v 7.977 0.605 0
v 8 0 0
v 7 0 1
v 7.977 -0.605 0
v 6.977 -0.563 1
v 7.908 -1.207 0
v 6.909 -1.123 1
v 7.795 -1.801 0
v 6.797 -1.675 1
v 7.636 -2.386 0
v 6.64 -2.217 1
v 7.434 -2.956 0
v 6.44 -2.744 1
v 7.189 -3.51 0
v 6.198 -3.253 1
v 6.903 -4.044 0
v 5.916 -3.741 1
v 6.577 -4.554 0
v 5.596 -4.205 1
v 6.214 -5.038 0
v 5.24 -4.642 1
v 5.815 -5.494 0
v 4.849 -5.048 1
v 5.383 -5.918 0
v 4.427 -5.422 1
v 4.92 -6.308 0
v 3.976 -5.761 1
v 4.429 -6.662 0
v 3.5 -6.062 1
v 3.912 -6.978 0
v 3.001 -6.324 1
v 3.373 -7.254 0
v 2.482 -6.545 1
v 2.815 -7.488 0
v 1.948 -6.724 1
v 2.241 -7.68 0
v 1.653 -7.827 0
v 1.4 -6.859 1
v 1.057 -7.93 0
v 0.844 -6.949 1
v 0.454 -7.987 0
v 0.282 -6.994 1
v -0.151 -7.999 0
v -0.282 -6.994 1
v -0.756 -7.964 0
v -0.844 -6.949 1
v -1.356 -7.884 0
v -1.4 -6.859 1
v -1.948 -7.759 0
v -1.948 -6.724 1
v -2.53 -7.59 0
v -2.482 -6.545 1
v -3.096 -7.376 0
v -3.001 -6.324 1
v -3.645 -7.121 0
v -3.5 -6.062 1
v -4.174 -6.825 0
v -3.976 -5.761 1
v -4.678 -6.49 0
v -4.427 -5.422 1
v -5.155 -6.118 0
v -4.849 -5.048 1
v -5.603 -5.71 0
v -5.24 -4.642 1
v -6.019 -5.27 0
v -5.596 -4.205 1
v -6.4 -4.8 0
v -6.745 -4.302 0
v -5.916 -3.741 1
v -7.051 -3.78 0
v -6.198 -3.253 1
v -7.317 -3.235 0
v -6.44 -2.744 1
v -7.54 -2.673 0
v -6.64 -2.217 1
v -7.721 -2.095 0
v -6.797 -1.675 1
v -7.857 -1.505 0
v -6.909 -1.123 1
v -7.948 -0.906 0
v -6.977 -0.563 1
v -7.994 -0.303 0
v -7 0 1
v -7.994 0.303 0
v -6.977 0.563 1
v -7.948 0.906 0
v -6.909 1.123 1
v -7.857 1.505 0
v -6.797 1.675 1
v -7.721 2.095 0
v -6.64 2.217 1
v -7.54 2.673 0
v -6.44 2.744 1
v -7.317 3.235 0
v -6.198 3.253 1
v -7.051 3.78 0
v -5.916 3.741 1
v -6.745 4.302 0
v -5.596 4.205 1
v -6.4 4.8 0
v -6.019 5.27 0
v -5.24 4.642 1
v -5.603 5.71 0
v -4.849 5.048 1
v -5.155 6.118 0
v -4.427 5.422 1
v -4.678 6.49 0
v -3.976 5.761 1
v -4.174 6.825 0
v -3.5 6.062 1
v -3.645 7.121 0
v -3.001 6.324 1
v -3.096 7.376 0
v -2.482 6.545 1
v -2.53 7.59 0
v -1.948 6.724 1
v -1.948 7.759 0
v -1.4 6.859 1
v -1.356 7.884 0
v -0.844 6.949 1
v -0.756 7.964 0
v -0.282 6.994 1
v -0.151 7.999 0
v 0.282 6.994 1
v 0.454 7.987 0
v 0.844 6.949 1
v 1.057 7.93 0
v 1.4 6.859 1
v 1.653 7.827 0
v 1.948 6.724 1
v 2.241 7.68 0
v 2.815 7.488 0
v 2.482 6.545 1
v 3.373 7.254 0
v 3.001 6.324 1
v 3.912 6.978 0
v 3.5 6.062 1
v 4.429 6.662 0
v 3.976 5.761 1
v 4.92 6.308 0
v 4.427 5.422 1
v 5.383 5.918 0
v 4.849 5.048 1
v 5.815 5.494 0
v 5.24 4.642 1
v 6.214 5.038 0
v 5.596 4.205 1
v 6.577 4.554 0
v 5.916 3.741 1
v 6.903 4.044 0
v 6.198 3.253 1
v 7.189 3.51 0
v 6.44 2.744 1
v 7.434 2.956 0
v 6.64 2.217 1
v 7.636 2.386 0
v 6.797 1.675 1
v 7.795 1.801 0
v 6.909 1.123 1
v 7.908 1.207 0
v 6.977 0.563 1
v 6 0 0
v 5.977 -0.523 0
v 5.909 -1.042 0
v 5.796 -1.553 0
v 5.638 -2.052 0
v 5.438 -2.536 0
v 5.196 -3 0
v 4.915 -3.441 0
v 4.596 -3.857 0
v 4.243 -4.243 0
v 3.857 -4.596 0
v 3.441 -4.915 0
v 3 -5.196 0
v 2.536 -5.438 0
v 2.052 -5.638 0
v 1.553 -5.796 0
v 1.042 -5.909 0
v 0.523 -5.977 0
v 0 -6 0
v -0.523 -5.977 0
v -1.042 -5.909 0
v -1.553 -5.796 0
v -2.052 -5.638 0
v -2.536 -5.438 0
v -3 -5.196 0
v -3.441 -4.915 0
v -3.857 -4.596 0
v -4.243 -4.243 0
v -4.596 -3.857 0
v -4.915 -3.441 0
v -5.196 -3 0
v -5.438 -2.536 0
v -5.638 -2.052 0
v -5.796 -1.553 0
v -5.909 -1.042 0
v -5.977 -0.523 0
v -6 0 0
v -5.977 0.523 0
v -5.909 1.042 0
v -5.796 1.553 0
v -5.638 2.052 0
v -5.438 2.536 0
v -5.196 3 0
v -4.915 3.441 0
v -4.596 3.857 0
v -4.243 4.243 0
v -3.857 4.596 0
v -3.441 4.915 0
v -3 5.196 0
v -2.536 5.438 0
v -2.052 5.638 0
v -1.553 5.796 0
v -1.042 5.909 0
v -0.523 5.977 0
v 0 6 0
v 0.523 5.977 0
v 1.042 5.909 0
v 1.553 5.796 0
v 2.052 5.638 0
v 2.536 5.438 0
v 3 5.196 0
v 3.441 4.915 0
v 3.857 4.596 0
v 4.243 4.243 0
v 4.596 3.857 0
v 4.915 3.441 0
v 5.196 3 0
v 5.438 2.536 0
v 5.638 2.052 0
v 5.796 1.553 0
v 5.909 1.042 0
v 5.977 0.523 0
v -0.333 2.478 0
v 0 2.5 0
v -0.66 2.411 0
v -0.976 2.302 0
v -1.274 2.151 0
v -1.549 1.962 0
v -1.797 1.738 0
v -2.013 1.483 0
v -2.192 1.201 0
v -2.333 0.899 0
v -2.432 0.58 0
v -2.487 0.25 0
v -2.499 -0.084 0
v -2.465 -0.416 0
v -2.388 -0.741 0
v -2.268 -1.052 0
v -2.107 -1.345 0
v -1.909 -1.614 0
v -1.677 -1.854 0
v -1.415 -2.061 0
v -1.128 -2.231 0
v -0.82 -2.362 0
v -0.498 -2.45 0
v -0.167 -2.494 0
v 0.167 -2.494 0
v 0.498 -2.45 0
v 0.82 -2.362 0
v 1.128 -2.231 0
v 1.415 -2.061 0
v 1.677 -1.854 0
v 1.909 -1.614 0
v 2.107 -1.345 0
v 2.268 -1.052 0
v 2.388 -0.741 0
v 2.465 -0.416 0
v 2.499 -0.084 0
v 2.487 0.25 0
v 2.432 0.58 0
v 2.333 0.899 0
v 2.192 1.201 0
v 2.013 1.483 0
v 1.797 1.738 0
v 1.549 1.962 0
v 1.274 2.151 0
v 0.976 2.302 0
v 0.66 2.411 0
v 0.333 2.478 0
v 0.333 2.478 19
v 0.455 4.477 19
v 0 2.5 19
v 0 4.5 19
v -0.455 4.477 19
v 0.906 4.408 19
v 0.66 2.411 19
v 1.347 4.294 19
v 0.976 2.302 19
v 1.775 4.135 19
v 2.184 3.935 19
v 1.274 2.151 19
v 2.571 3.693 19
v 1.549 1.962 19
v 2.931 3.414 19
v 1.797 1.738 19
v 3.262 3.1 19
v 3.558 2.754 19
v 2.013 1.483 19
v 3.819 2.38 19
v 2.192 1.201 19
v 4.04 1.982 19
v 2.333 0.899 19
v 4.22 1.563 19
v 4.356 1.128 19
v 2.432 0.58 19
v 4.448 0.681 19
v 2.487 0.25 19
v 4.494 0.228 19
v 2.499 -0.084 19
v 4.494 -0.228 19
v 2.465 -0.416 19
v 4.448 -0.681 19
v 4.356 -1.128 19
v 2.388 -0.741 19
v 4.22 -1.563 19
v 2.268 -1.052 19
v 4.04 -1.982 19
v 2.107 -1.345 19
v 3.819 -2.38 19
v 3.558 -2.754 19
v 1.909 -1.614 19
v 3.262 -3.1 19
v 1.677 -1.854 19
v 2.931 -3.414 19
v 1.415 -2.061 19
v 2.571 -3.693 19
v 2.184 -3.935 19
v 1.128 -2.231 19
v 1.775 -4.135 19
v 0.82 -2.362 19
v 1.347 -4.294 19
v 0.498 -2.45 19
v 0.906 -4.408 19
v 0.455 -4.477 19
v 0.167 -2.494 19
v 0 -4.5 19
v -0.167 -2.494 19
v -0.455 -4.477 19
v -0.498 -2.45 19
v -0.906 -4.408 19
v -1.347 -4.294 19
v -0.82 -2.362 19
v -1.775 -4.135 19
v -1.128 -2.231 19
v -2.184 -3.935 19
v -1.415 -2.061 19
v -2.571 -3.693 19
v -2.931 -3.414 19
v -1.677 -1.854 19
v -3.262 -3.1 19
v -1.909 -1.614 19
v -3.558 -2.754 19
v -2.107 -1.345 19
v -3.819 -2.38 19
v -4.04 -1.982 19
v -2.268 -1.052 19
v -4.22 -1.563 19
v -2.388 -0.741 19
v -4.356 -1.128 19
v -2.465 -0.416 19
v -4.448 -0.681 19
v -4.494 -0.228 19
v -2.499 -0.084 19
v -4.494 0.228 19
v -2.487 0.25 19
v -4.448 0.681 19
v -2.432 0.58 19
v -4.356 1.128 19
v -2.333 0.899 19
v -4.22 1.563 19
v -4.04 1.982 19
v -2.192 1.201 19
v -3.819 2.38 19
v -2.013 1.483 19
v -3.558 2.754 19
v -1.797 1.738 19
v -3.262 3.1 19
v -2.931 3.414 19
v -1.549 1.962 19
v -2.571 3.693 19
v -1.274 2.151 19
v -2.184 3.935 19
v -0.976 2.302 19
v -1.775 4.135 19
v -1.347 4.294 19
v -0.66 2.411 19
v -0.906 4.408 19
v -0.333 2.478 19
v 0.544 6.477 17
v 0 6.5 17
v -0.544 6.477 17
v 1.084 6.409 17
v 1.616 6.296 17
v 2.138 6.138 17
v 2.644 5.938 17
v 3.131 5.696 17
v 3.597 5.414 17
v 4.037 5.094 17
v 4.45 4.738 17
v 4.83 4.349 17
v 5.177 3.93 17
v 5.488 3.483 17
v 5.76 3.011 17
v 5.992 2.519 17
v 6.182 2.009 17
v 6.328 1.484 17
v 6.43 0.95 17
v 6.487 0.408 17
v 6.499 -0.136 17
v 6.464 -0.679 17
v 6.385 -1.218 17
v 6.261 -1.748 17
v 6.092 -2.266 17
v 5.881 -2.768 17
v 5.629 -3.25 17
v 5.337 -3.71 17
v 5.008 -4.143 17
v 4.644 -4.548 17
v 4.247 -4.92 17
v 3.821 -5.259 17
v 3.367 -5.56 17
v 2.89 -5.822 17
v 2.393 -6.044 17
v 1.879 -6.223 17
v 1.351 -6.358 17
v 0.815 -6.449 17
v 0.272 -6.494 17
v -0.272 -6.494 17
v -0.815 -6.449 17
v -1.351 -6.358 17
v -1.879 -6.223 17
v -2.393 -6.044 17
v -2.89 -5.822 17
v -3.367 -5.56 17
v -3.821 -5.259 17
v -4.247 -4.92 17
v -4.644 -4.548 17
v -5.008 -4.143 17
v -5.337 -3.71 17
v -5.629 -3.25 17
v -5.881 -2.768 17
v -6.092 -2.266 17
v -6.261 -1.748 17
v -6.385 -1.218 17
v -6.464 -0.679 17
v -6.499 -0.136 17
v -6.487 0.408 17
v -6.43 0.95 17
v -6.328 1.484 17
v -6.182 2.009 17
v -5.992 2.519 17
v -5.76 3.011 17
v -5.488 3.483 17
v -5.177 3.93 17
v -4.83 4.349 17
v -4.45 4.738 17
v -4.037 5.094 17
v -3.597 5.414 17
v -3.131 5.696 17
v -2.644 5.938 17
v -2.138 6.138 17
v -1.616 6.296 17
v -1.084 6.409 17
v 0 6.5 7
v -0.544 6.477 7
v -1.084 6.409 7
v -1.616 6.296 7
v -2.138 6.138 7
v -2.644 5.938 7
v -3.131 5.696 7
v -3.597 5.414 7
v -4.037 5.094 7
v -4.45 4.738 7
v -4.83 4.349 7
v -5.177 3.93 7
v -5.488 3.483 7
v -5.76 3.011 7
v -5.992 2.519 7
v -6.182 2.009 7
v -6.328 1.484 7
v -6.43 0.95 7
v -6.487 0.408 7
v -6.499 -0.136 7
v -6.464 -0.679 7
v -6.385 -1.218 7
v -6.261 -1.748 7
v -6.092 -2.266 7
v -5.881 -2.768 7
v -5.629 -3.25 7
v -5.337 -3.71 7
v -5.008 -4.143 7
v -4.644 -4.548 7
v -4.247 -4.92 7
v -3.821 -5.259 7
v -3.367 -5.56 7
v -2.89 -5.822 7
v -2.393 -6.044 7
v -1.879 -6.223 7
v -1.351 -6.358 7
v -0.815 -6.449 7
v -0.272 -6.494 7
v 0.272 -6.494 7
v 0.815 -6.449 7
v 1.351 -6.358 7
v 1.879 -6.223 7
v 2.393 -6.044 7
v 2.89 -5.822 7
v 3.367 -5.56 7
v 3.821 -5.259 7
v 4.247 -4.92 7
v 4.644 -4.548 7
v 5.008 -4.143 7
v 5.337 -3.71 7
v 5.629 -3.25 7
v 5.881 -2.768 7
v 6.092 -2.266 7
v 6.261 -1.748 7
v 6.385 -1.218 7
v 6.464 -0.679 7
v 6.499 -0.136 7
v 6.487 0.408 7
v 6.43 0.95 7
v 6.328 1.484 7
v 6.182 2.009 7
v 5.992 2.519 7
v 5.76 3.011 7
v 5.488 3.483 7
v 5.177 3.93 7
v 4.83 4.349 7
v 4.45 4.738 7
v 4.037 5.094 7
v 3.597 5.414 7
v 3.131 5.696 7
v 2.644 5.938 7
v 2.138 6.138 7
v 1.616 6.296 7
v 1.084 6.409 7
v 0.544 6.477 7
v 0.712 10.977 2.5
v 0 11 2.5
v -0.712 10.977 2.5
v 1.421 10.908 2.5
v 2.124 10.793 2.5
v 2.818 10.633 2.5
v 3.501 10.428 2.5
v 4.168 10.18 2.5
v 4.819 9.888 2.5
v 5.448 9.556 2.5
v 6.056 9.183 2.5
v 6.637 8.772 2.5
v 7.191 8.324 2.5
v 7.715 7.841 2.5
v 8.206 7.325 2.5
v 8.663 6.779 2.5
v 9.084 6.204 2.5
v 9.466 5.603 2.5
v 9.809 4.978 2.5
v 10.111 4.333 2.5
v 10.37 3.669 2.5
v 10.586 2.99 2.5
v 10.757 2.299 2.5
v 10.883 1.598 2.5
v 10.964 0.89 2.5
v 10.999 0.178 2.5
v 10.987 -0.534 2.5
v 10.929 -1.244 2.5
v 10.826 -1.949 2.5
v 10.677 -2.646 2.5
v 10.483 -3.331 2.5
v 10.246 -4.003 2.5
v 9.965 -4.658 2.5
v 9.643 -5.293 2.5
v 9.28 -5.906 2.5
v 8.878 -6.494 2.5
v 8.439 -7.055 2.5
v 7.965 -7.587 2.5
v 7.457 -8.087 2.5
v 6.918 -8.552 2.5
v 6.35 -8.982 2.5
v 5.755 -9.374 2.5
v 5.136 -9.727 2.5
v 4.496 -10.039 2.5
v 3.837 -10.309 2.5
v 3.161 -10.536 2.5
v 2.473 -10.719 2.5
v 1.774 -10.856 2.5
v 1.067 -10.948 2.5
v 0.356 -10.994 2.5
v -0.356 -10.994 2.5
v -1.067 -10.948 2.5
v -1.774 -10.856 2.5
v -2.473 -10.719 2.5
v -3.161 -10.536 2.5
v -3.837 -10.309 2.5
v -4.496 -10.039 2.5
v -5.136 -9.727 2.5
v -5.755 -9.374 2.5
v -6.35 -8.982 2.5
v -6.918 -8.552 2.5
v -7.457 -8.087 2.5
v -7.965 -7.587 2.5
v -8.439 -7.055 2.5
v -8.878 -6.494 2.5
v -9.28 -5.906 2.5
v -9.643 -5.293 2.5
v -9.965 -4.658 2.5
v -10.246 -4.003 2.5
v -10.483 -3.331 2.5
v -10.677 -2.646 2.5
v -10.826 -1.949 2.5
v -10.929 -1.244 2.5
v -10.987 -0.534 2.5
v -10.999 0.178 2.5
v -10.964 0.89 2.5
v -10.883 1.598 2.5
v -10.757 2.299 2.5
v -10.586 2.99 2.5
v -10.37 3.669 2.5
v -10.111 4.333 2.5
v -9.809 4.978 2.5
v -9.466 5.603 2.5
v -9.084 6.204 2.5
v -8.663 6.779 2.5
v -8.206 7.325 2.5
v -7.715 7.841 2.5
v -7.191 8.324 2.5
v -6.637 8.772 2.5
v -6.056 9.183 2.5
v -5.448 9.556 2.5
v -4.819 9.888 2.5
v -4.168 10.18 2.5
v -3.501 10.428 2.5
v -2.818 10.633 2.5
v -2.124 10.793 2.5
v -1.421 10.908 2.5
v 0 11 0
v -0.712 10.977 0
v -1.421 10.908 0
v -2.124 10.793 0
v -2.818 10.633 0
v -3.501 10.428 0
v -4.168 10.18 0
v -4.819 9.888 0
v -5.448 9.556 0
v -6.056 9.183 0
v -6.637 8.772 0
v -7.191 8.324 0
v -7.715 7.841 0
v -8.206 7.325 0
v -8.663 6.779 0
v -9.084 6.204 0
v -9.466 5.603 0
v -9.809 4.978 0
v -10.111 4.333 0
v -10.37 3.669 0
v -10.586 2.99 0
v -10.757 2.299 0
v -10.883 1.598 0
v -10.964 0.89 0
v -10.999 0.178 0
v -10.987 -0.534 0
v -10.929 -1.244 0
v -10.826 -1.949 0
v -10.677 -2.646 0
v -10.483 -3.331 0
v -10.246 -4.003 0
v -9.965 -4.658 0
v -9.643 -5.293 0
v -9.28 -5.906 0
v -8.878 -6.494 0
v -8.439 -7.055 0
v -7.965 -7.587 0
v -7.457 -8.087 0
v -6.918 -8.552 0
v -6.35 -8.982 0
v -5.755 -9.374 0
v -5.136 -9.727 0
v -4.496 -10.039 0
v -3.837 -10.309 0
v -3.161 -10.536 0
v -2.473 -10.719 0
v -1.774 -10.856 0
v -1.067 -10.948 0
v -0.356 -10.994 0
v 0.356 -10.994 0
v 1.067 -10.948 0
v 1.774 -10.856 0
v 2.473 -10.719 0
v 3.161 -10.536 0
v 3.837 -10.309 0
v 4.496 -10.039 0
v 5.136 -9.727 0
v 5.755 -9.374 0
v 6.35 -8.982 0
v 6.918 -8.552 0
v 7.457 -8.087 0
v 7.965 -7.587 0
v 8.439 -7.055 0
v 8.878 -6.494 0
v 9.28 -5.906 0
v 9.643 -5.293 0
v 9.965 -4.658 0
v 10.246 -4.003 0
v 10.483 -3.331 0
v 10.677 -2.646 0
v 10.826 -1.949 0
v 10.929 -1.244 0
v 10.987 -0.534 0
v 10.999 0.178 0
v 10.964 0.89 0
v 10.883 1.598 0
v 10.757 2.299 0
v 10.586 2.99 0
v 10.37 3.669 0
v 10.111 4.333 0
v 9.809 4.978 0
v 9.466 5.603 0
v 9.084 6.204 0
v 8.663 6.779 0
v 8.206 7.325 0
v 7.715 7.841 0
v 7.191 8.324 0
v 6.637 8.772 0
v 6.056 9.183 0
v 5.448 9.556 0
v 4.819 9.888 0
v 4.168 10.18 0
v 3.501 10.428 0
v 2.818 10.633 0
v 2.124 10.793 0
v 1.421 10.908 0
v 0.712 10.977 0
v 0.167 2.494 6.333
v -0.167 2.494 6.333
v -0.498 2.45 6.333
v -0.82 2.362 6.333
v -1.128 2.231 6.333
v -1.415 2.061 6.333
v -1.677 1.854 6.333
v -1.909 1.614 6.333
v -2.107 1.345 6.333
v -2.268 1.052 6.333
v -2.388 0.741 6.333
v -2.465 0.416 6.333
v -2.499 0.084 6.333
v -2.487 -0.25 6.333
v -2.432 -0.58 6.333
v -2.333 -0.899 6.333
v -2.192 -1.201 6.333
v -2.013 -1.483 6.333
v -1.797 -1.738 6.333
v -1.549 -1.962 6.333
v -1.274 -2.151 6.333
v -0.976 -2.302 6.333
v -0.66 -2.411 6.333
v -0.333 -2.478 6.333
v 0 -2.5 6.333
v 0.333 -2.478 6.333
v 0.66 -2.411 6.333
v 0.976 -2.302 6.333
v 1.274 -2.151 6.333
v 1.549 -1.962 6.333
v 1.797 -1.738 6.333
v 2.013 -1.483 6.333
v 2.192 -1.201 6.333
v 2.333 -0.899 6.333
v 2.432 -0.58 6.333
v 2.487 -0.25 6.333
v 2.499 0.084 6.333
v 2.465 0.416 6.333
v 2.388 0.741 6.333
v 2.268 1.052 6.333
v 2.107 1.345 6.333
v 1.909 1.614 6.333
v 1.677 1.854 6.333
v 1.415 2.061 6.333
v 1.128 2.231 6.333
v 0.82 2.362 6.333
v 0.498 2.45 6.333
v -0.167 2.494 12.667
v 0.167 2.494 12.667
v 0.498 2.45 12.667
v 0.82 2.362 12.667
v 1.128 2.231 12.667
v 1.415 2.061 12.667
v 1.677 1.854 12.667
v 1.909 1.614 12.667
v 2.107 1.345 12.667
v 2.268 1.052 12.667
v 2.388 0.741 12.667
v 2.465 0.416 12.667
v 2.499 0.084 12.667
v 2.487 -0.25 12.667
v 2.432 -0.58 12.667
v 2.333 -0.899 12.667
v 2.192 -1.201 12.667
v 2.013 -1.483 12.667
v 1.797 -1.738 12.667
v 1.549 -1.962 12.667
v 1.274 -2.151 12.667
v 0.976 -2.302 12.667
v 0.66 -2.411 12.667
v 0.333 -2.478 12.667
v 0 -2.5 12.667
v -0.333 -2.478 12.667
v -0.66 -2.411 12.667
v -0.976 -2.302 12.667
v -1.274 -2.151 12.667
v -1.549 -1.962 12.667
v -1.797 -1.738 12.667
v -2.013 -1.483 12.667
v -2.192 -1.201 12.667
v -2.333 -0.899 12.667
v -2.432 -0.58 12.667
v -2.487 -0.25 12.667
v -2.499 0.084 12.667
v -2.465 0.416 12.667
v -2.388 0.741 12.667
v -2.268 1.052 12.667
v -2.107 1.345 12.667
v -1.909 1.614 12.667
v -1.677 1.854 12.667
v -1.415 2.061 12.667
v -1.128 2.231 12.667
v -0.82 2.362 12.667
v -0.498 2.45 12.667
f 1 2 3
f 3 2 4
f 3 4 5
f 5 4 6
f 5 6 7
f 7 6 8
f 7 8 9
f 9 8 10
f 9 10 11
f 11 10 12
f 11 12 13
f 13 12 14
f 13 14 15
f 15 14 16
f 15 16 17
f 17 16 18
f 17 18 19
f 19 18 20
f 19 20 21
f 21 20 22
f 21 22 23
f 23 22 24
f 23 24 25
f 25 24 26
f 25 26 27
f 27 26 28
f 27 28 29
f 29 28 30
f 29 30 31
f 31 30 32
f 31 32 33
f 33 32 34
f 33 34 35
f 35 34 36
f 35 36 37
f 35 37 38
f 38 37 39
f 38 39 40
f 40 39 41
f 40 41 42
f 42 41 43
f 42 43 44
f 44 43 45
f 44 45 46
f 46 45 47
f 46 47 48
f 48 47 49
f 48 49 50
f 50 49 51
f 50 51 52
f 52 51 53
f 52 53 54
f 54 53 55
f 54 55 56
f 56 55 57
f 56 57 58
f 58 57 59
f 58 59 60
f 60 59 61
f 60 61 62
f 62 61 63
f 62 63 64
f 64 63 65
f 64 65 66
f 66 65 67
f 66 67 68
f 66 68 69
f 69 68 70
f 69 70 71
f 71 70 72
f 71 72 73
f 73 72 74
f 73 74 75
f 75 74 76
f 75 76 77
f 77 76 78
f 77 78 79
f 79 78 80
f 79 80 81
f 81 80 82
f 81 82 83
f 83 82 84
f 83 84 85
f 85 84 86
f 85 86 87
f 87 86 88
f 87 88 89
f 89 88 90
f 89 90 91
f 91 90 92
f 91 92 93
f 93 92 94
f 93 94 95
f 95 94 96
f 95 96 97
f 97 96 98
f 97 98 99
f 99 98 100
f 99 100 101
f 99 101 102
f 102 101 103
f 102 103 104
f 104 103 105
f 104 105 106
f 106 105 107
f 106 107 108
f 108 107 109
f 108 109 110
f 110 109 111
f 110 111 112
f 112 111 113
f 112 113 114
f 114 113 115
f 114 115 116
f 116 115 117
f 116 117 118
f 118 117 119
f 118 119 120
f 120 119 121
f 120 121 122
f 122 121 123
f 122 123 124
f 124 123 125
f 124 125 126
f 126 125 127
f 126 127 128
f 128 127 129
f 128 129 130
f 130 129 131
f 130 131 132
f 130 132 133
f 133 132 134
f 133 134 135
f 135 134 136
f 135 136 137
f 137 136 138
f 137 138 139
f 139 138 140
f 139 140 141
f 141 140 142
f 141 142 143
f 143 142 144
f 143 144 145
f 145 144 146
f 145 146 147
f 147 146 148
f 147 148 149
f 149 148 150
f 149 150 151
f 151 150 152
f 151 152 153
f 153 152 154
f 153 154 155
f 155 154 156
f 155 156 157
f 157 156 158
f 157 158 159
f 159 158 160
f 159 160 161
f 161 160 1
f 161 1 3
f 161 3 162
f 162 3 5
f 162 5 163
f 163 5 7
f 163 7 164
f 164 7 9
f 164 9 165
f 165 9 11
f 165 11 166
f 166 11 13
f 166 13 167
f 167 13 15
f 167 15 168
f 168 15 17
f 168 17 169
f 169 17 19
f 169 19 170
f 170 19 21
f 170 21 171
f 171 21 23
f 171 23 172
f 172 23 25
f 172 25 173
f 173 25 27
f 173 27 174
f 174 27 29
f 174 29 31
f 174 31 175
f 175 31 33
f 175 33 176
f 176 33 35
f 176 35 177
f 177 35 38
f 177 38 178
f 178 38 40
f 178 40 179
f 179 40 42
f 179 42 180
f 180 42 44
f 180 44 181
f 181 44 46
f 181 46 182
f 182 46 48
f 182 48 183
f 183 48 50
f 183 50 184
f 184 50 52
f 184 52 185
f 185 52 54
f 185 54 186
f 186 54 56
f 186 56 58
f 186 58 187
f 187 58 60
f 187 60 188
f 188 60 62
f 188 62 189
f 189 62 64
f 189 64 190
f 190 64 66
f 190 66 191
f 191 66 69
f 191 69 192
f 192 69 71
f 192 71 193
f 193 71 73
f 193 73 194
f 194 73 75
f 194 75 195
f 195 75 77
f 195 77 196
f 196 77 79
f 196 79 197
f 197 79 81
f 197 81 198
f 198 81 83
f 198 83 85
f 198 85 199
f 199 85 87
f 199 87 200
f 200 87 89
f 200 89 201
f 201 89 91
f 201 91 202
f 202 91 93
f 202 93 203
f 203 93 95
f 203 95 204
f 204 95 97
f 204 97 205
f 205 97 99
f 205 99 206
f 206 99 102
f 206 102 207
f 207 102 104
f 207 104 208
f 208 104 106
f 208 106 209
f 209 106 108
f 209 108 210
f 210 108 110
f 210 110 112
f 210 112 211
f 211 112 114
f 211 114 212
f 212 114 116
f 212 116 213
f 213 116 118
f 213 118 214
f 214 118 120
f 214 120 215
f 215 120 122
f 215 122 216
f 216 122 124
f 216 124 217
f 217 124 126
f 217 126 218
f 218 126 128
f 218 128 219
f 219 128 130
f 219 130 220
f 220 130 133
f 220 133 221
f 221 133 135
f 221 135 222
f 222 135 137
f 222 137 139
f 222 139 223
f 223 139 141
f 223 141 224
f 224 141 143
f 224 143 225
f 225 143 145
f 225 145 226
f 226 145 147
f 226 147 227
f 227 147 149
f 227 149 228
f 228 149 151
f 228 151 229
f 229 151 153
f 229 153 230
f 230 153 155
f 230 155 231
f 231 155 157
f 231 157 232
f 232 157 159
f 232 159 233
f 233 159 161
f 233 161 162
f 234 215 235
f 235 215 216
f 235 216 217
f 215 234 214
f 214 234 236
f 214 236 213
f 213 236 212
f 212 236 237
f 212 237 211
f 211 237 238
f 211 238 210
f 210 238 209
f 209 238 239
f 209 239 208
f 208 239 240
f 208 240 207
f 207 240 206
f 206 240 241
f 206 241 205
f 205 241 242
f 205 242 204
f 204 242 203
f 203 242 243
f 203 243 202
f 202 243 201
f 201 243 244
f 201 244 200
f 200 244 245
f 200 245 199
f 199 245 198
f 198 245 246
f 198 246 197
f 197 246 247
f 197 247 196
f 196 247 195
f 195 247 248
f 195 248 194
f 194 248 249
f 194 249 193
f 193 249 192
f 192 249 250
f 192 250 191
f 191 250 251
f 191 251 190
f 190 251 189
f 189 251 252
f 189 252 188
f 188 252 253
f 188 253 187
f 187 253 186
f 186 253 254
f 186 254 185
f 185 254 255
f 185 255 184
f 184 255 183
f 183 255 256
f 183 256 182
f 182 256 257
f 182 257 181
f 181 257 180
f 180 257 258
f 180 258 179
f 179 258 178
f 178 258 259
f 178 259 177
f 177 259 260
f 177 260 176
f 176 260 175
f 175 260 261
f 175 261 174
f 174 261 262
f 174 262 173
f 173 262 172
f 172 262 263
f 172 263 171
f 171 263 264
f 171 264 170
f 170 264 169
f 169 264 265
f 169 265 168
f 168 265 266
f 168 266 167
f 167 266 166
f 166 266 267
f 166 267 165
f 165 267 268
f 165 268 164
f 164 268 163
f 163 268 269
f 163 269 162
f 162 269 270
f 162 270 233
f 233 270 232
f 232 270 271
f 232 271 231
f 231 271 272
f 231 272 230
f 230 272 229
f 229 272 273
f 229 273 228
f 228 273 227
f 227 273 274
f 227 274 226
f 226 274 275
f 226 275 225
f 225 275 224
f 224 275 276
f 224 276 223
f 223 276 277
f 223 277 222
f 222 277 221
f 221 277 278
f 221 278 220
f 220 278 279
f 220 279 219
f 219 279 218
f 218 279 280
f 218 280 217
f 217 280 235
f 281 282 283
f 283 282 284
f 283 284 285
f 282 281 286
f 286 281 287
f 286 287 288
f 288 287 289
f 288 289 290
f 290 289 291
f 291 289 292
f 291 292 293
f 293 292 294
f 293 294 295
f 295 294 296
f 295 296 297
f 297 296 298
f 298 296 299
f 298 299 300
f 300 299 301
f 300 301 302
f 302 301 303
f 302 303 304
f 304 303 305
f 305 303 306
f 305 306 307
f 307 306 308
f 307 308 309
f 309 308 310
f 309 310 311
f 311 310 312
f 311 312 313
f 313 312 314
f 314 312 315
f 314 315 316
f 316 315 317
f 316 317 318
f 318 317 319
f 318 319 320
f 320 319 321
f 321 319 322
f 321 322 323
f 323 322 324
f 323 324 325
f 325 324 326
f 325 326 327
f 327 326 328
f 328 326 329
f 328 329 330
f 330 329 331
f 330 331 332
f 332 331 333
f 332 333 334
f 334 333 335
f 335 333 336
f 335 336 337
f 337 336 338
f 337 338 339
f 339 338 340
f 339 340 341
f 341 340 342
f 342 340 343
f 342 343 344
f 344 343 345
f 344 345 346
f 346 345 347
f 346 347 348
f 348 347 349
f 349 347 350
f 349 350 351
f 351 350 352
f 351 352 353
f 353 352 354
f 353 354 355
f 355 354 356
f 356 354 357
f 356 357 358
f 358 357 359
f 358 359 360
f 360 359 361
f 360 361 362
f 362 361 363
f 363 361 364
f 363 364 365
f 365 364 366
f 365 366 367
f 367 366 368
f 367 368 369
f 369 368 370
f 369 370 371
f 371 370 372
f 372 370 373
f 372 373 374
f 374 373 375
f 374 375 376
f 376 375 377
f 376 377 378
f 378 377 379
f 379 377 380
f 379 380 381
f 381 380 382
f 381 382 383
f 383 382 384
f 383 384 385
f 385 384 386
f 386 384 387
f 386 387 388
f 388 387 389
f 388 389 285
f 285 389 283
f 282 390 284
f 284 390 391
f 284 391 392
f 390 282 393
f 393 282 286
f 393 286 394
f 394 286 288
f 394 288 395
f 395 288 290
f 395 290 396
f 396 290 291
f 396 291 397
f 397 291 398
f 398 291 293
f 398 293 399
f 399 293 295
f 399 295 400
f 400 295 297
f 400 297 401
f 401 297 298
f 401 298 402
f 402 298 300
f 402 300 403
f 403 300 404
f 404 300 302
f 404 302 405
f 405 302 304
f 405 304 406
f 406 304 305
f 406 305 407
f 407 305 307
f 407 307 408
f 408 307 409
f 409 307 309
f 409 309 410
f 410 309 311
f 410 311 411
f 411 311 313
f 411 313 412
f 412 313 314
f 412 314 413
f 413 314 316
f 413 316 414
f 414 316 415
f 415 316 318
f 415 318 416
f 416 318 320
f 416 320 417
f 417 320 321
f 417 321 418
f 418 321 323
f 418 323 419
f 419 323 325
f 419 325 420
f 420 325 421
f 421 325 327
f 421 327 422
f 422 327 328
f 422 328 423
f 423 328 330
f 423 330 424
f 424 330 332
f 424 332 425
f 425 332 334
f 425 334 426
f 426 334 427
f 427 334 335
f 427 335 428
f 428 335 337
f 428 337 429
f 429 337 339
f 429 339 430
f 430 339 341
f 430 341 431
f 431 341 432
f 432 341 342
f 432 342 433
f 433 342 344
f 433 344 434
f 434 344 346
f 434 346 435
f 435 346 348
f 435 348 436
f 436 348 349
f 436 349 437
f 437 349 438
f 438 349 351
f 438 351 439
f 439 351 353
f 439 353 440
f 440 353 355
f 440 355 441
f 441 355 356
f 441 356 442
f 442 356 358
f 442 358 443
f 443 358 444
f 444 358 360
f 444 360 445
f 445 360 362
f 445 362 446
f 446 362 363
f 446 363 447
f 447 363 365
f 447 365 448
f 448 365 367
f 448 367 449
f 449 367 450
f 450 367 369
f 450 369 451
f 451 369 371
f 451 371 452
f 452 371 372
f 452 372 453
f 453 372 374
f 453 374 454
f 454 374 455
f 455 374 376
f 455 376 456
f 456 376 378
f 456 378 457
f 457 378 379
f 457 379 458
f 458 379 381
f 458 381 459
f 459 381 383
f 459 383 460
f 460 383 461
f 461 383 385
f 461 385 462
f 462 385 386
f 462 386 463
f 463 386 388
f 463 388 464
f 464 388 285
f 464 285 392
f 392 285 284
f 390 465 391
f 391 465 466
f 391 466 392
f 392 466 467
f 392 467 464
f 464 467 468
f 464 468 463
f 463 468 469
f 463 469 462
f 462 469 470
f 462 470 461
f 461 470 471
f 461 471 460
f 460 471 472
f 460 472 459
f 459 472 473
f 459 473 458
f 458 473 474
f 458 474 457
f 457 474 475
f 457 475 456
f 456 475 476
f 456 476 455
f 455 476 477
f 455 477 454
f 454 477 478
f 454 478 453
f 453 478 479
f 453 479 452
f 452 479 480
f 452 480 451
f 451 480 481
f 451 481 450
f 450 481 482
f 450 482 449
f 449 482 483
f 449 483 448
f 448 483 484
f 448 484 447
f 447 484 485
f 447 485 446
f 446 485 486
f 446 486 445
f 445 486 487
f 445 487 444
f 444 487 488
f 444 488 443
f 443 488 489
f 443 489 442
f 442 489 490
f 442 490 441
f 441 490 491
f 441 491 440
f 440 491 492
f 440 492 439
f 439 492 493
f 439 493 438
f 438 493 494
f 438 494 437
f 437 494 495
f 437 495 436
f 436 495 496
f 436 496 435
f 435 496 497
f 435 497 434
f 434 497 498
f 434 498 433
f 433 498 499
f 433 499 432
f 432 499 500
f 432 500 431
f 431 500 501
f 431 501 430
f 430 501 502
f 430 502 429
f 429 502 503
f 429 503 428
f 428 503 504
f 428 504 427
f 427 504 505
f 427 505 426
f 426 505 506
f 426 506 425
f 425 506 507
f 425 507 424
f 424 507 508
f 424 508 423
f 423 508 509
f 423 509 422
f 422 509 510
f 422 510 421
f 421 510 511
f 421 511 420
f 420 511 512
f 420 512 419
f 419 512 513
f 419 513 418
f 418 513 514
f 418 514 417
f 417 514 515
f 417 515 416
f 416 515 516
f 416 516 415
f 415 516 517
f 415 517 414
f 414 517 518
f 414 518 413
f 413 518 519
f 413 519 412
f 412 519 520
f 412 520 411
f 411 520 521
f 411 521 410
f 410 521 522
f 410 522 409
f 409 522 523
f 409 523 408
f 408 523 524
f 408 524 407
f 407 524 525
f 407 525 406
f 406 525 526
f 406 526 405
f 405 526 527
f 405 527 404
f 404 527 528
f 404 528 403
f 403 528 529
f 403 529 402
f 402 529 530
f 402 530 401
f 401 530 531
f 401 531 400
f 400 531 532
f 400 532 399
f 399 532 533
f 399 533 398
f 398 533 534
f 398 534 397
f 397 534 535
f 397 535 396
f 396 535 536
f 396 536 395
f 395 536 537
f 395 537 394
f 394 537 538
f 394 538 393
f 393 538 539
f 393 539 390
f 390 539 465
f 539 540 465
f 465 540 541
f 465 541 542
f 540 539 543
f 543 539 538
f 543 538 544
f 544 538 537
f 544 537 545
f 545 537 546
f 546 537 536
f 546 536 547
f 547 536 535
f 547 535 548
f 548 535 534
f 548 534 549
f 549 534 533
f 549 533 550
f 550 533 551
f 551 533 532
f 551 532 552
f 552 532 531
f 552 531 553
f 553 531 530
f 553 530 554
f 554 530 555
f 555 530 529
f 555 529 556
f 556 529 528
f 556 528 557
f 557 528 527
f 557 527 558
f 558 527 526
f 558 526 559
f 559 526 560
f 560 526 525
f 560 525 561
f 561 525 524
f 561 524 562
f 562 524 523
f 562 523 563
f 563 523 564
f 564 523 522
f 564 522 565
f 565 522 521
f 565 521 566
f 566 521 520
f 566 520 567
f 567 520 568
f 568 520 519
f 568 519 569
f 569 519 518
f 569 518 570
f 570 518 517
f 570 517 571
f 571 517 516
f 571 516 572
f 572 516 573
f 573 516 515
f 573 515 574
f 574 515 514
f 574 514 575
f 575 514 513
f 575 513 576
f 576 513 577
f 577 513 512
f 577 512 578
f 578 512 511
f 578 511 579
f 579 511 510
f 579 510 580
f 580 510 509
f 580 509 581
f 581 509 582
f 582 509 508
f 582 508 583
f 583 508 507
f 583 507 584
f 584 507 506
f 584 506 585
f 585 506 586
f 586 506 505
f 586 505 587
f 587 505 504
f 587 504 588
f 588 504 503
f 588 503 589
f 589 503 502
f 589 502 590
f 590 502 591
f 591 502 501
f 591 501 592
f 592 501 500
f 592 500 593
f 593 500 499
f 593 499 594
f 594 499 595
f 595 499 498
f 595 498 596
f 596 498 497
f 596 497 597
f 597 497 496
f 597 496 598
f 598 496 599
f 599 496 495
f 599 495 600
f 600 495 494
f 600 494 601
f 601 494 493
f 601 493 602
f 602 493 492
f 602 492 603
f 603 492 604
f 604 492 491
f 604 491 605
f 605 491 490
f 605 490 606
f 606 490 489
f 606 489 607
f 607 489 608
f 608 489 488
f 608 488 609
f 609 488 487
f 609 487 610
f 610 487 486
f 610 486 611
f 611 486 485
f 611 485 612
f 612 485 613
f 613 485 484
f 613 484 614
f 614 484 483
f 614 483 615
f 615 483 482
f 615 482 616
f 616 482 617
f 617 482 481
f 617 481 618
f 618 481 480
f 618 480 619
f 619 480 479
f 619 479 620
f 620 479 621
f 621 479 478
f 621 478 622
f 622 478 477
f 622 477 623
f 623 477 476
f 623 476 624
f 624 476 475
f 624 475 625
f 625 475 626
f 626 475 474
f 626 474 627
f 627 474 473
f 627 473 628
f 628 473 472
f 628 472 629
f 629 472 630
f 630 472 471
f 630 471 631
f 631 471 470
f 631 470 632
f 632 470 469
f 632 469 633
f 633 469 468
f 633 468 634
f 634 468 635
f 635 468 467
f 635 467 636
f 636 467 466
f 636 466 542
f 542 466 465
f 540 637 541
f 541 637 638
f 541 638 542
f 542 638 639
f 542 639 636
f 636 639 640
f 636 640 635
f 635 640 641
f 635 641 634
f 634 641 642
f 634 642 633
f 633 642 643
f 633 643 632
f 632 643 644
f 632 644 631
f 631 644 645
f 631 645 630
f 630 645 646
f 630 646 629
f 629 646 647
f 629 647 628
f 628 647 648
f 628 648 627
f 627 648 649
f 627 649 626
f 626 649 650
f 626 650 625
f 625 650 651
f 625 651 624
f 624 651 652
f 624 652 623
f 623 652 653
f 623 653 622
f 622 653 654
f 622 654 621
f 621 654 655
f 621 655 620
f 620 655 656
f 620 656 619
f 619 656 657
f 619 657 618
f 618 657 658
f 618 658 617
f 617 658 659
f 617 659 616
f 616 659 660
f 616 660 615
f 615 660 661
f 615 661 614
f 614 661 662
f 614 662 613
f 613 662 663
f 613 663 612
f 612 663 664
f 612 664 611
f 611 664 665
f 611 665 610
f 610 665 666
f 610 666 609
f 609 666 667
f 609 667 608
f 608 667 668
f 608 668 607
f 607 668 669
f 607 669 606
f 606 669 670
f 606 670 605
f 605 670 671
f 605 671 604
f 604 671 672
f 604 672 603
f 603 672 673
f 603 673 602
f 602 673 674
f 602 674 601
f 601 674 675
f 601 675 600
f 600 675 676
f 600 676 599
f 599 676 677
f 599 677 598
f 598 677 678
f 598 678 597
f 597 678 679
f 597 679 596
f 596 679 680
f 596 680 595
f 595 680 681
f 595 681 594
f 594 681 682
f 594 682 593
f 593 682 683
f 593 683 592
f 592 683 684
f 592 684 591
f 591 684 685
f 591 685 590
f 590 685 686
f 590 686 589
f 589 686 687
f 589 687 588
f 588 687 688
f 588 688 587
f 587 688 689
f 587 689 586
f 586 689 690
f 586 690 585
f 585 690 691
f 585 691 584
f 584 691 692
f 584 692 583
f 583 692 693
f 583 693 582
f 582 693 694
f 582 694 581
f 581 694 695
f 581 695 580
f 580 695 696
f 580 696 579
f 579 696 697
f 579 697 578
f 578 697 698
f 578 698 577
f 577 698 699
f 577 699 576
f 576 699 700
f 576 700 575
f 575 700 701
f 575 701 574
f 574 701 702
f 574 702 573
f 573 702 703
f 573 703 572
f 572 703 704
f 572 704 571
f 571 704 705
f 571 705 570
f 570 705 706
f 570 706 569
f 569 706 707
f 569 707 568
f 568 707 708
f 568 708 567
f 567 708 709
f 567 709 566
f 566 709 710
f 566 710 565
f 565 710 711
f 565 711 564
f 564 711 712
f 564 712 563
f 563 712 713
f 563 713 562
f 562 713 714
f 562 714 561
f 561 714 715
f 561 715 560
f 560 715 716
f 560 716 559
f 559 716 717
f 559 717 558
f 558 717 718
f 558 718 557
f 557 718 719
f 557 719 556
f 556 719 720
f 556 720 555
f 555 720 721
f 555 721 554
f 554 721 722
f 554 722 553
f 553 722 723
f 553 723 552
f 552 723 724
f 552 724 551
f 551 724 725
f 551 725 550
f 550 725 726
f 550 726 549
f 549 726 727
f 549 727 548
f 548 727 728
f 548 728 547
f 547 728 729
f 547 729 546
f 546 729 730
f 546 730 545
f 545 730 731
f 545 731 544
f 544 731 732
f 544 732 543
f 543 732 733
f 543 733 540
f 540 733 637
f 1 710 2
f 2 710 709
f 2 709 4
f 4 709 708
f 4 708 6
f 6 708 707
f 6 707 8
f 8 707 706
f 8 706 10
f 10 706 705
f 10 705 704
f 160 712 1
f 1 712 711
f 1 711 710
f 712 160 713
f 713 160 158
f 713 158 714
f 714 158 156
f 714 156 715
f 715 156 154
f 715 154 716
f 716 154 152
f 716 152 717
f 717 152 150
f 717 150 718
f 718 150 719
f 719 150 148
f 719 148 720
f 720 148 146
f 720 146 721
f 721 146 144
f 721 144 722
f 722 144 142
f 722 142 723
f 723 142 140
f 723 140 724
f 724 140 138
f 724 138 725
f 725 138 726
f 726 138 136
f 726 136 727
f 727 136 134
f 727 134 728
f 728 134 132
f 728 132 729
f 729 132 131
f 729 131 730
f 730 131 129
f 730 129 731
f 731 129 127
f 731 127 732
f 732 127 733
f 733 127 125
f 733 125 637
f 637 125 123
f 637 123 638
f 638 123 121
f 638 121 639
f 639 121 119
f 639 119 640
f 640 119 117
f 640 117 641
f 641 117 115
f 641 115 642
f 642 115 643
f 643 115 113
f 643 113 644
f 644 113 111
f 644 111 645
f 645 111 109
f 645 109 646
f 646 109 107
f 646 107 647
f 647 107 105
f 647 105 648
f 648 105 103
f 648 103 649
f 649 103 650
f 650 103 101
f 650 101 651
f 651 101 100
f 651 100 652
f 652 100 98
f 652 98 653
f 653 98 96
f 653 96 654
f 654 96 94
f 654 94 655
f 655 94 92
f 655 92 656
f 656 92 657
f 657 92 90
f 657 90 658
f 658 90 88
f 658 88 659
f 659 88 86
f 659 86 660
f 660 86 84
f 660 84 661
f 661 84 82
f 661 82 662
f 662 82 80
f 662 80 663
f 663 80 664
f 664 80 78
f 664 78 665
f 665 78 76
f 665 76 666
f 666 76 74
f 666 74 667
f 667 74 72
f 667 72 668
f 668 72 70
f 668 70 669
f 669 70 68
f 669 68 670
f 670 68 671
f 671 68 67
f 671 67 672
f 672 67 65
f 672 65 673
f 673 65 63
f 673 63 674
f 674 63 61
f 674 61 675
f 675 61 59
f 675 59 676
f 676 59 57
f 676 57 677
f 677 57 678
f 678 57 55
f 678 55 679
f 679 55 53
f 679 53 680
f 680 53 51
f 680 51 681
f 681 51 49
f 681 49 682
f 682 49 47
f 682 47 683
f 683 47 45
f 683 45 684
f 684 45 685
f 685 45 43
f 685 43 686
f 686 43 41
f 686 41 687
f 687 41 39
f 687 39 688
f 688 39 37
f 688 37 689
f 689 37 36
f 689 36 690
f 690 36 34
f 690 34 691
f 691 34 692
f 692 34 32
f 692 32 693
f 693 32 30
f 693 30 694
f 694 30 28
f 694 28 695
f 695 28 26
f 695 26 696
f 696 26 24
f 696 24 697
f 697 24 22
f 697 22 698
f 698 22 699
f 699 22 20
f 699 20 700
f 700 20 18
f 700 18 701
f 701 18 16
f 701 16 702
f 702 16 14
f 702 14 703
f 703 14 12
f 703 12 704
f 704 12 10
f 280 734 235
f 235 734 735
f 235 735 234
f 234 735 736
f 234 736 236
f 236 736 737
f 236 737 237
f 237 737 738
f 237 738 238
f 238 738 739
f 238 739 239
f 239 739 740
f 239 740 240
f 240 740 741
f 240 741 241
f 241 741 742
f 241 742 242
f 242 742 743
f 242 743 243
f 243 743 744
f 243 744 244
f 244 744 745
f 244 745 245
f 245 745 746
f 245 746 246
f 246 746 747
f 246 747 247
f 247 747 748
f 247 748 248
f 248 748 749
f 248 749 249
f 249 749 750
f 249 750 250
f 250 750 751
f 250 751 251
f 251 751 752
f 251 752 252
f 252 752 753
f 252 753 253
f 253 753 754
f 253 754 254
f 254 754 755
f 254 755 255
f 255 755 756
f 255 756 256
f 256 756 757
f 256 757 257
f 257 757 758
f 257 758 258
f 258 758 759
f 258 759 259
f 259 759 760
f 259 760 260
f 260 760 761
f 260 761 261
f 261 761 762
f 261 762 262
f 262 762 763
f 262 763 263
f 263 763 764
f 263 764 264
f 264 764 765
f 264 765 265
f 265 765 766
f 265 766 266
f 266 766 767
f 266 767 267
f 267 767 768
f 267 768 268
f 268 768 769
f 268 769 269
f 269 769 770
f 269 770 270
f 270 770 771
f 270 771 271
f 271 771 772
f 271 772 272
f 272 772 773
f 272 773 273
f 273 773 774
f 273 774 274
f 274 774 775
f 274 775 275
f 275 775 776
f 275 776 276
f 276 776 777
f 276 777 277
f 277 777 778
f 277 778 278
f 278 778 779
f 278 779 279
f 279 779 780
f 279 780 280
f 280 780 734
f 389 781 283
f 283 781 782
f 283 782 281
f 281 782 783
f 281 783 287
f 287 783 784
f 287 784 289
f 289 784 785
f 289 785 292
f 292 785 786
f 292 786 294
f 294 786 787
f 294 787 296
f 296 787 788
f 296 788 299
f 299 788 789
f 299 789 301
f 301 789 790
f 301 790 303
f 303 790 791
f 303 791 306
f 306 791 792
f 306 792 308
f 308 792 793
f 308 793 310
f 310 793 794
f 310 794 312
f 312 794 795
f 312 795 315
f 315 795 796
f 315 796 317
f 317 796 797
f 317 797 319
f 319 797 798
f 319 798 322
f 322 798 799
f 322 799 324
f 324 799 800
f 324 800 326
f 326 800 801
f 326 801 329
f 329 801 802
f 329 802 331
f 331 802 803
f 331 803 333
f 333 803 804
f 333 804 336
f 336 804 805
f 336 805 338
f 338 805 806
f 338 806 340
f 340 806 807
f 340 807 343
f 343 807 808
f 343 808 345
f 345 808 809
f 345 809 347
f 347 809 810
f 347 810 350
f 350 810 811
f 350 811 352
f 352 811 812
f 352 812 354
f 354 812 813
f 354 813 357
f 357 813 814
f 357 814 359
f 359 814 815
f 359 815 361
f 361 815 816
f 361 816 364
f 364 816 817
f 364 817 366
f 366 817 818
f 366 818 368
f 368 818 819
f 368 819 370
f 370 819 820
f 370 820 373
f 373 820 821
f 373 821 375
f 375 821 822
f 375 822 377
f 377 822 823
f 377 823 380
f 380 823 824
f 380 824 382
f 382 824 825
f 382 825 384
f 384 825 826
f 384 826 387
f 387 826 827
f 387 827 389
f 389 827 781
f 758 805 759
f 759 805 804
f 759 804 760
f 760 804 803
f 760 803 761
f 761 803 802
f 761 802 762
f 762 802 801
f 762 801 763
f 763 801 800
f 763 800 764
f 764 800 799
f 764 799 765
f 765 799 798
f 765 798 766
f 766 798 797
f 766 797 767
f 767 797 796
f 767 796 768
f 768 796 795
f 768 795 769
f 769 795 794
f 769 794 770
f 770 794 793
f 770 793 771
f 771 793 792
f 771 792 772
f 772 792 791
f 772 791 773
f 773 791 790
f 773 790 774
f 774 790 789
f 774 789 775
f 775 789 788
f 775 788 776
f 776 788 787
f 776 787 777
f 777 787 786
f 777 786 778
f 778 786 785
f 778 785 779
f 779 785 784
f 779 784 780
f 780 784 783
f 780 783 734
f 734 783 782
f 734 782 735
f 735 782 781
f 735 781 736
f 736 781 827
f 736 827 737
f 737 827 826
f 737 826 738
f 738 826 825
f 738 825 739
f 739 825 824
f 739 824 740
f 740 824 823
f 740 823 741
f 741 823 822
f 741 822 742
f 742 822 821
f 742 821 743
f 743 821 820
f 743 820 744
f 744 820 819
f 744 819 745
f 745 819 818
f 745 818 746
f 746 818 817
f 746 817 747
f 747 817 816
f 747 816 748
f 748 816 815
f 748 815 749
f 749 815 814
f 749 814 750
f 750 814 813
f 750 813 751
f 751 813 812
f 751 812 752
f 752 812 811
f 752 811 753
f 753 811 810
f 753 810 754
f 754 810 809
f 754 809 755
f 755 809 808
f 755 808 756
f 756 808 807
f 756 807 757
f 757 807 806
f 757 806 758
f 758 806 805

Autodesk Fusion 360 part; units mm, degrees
sketch "Base Revolution" plane through (0, 0, 0) normal (1, 0, 0) x (0, 1, 0)
  line L0 (0, 0) -> (0, 19) construction
  line L1 (0, 19) -> (2.5, 19) construction
  line L2 (2.5, 19) -> (4.5, 19)
  line L3 (4.5, 19) -> (6.5, 17)
  line L4 (6.5, 17) -> (6.5, 7)
  line L5 (6.5, 7) -> (11, 2.5)
  line L6 (11, 0) -> (2.5, 0)
  line L7 (2.5, 19) -> (2.5, 0)
  line L8 (11, 2.5) -> (11, 0)
  dimension "d2" = 12
  dimension "d3" = 19
  dimension "d4" = 4.5
  dimension "d5" = 6.5
  dimension "d6" = 2.5
  dimension "d7" = 135
  dimension "d8" = 135
  dimension "d10" = 8.5
revolve "Revolve1" add sketch "Base Revolution" angle 360 about axis through (0, 0, 0) along (0, 0, 1)
sketch "Foot cutout to reduce walking" plane through (0, 0, 0) normal (0, 1, 0) x (1, 0, 0)
  line L0 (11, -2.5) -> (-11, -2.5)
  line L1 (11, 0) -> (-11, 0)
  line L2 (2.5, 0) -> (-2.5, 0)
  line L3 (2.5, -19) -> (-2.5, -19)
  line L4 (8, 0) -> (7, -1)
  line L5 (7, -1) -> (6, 0)
  dimension "d11" = 3
  dimension "d14" = 2
revolve "Revolve2" cut sketch "Foot cutout to reduce walking" angle 360 about axis through (0, 0, 1.75) along (0, 0, 1)
equation "d4 = ( 9 / 2 ) * 1 mm"
equation "d5 = ( 13 / 2 ) * 1 mm"
equation "d6 = ( 5 / 2 ) * 1 mm"
equation "d10 = ( 17 / 2 ) * 1 mm"
